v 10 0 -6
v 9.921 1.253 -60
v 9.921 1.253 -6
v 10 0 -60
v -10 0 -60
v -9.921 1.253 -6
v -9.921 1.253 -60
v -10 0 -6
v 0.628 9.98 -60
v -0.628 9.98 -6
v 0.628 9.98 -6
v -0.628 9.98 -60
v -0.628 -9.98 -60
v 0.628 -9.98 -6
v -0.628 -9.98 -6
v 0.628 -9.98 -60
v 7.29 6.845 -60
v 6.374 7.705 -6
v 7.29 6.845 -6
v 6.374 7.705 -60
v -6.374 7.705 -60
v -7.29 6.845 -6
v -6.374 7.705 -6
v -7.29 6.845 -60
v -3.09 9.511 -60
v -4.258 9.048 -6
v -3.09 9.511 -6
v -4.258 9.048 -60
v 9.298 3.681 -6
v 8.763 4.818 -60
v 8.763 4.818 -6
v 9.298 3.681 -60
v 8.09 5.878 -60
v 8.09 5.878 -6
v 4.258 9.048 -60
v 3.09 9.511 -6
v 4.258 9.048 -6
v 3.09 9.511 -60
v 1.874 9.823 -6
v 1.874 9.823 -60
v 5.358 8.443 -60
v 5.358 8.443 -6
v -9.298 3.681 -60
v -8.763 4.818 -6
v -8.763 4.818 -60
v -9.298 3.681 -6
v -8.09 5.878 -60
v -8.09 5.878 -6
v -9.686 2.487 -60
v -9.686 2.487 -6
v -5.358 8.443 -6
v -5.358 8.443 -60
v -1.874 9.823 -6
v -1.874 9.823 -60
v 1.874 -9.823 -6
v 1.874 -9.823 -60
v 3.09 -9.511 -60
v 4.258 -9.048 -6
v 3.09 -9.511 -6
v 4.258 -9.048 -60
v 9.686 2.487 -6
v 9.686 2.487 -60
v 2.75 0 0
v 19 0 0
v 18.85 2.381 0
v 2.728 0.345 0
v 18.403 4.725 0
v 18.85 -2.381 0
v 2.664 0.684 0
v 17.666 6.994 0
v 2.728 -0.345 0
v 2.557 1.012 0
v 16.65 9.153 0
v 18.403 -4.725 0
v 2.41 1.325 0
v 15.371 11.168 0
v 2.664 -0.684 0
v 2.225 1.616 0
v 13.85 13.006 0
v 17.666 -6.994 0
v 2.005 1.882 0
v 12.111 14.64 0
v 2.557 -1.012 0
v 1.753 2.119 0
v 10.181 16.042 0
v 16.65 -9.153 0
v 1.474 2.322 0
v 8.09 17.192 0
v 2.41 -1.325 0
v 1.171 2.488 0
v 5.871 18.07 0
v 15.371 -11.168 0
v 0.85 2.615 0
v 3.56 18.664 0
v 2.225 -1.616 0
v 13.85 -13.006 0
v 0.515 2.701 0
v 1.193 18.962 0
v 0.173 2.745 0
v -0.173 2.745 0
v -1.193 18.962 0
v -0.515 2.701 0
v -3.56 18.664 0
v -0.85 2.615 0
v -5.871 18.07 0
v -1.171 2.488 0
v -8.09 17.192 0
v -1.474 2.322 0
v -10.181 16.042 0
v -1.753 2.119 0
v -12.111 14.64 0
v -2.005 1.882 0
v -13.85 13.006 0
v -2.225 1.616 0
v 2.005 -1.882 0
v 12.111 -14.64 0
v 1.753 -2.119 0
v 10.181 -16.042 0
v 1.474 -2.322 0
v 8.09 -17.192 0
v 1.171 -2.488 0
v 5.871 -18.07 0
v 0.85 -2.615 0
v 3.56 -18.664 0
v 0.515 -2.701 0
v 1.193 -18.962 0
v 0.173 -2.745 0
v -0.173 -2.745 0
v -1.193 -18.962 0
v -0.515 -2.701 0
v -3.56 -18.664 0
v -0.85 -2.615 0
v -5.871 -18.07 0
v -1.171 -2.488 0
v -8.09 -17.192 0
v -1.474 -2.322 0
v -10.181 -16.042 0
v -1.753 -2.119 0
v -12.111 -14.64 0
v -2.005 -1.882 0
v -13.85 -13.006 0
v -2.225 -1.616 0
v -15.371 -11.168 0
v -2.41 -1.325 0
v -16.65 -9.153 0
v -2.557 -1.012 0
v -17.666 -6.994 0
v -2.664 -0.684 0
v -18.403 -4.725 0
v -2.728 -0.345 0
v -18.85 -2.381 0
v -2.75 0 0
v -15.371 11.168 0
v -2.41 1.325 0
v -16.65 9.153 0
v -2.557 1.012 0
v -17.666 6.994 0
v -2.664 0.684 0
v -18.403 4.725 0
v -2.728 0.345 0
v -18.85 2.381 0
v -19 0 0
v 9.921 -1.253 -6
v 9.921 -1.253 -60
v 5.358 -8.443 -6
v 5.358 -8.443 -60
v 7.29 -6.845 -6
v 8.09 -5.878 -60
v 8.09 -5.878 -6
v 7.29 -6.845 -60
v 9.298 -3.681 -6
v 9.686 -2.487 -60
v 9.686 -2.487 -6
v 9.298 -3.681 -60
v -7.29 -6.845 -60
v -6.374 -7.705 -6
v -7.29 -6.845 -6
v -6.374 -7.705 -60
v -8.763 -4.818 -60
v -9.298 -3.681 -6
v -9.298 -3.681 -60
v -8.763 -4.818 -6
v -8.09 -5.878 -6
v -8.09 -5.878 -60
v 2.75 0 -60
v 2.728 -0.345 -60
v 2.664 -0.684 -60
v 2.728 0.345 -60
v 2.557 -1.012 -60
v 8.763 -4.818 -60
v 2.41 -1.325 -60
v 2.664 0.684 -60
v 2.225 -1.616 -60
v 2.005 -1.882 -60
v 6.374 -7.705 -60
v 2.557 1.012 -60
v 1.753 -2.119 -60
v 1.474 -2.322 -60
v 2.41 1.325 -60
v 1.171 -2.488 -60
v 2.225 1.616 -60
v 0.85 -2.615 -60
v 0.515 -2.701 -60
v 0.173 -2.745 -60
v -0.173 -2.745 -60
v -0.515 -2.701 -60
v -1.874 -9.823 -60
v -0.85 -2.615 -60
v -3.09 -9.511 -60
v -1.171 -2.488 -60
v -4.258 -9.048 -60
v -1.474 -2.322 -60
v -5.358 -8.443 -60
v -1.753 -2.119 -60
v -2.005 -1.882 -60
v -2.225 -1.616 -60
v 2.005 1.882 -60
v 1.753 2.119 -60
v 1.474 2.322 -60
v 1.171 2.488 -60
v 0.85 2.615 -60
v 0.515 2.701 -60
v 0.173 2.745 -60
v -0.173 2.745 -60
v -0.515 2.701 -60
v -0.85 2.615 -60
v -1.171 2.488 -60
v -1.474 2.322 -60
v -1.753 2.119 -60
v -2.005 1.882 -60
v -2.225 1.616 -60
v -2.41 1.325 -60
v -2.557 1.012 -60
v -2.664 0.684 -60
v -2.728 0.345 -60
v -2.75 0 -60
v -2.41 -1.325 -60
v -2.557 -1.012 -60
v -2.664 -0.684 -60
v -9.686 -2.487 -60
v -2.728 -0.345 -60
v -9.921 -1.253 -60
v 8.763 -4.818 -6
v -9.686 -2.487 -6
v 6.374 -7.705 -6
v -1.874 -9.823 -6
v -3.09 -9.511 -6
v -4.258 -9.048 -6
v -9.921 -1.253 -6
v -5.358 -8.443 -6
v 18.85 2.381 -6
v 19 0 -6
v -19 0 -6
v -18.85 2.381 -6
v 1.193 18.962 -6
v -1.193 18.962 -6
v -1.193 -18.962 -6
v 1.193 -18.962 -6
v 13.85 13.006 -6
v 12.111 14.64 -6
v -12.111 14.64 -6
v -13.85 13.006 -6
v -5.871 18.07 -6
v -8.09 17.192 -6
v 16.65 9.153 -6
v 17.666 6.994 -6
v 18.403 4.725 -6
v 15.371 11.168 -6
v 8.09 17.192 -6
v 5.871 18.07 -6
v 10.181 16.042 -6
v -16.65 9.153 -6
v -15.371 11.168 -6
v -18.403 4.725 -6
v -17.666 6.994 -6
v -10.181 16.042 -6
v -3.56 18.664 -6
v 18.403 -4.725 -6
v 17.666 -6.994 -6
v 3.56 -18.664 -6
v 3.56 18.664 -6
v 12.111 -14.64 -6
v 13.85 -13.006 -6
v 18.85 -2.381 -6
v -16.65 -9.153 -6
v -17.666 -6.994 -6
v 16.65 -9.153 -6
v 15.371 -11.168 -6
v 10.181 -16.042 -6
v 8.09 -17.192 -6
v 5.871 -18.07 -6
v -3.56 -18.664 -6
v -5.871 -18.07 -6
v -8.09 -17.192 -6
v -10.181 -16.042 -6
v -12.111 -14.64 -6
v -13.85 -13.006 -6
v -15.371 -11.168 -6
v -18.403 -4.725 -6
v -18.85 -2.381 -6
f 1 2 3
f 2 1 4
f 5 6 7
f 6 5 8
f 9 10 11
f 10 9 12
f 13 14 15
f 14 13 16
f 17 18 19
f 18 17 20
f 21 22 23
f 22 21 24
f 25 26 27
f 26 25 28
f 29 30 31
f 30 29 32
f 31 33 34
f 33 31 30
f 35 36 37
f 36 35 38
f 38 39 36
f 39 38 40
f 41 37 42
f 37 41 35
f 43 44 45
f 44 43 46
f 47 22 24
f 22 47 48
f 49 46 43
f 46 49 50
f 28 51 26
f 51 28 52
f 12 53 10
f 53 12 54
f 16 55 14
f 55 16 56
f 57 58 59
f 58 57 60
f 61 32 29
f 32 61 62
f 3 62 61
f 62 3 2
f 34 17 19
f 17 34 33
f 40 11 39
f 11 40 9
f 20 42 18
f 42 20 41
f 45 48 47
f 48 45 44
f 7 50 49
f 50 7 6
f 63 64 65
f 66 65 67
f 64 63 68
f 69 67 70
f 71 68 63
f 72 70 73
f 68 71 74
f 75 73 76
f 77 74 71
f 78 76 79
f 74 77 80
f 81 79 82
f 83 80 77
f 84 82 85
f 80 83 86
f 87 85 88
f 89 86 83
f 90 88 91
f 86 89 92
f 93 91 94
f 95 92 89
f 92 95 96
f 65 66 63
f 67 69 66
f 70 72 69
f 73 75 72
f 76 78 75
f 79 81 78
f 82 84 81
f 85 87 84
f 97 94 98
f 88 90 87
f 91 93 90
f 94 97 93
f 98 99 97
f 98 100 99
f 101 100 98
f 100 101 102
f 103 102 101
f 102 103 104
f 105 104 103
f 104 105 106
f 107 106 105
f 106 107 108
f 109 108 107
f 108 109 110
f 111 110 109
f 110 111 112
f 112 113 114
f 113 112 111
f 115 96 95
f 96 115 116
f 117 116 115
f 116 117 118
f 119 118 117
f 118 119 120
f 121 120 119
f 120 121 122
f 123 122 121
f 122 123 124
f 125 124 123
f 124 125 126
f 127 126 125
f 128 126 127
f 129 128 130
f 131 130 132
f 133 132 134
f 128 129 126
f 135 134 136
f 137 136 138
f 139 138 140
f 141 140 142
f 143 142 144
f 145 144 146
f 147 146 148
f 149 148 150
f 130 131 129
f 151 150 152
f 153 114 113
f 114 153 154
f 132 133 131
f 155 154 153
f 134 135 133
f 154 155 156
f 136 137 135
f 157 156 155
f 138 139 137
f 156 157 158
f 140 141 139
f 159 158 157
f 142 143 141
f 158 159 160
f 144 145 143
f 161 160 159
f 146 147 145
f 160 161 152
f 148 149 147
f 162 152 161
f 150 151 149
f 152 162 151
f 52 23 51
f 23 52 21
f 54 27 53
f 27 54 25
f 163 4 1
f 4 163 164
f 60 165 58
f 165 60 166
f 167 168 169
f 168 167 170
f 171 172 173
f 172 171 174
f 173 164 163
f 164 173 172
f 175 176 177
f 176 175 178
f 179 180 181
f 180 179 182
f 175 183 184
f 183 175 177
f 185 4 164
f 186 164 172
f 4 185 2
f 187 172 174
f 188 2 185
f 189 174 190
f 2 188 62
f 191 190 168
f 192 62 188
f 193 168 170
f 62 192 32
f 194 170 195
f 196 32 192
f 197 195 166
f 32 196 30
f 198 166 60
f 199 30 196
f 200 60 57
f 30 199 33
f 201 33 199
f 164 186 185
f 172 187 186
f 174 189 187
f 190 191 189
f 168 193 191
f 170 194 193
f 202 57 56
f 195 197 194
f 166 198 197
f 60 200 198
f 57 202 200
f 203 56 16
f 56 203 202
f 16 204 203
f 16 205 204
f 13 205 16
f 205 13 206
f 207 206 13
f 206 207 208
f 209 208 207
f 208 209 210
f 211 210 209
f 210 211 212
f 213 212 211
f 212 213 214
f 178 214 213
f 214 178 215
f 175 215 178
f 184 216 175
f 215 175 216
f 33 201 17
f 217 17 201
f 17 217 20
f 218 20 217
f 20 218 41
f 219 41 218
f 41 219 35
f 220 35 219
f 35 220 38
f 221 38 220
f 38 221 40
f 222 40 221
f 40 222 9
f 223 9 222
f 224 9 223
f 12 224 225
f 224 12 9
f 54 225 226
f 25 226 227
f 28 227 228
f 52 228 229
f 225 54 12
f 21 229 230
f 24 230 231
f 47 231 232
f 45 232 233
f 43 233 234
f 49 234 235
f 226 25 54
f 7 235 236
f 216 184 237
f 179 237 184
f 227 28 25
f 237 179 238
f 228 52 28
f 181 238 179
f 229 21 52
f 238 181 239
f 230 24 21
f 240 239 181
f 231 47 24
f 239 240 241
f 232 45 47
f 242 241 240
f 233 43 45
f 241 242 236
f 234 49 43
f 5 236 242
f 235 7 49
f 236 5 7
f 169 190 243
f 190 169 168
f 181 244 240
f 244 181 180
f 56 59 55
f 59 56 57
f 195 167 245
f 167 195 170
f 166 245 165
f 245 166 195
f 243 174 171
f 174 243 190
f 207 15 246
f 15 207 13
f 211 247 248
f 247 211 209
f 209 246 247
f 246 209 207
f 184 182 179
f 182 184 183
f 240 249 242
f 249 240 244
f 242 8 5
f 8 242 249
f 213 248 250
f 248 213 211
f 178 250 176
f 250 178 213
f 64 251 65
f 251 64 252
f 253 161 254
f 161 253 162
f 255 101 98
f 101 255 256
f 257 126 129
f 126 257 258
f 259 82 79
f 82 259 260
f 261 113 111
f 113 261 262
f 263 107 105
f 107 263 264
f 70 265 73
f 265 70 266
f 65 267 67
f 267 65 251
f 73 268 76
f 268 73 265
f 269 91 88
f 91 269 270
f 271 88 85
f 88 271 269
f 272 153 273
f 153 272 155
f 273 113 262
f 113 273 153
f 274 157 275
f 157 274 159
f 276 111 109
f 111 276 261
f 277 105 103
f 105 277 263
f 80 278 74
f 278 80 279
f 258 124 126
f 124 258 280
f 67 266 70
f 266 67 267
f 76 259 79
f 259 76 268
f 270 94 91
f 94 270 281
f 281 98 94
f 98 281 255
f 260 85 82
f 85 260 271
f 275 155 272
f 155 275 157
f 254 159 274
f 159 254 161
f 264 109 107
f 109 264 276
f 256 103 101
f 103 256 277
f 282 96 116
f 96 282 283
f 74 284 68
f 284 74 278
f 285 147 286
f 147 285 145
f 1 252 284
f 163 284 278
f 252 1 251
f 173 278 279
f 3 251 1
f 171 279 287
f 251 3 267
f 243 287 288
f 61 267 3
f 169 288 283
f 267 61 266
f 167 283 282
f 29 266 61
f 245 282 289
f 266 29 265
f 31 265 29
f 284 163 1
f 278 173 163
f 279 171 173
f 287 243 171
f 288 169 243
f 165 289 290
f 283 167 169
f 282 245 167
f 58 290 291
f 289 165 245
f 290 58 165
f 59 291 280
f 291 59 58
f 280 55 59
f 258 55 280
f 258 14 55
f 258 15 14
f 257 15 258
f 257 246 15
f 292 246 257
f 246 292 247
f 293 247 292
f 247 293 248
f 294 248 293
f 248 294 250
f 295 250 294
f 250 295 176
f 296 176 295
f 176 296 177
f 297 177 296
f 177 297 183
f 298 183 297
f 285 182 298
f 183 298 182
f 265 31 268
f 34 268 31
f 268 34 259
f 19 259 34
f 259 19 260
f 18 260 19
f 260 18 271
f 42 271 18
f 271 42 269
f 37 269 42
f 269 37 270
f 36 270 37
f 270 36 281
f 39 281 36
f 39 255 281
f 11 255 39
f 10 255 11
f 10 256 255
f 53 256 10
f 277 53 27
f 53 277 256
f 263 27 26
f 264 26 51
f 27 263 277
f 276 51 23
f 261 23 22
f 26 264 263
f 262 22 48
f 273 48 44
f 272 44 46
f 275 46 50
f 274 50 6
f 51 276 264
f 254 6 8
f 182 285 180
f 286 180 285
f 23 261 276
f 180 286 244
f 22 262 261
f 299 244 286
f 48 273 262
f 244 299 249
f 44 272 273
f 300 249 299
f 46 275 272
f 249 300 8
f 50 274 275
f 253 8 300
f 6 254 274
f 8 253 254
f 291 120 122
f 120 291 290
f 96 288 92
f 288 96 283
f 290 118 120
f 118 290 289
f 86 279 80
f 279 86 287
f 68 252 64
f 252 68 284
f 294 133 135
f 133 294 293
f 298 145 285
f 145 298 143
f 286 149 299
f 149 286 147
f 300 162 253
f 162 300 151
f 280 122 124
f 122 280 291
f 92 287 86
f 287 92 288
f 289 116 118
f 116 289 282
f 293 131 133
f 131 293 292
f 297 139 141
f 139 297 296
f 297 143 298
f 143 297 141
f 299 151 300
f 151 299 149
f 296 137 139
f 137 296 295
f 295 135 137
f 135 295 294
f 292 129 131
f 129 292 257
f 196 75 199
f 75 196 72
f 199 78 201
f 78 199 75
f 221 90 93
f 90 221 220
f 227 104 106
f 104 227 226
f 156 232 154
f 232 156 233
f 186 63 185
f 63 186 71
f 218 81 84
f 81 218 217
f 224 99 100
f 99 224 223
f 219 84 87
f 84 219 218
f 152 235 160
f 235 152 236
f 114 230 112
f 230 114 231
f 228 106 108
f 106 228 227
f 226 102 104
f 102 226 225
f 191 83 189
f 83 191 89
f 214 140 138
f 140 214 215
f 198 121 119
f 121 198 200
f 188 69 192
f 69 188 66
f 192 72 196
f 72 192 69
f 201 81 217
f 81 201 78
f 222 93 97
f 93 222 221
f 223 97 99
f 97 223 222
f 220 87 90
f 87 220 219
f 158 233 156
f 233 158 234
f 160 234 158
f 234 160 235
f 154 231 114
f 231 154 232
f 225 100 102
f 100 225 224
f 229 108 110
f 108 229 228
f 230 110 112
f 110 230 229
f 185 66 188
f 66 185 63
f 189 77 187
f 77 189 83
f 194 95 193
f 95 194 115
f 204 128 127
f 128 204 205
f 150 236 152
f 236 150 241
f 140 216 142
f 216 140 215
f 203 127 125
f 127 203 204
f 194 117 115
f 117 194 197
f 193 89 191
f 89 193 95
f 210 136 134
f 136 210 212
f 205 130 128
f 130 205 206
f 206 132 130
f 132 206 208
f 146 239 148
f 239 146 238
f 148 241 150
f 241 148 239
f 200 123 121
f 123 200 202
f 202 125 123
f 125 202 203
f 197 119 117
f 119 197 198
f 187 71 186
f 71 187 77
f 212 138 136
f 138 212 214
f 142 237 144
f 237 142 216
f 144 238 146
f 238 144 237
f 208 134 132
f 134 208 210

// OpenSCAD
$fn = 50;


difference() {
	union() {
		translate(v = [0, 0, -60.0000000000]) {
			cylinder(h = 60, r = 10.0000000000);
		}
		translate(v = [0, 0, -6.0000000000]) {
			cylinder(h = 6, r = 19.0000000000);
		}
	}
	union() {
		#translate(v = [0, 0, -60]) {
			cylinder(h = 60, r = 2.7500000000);
		}
	}
}
